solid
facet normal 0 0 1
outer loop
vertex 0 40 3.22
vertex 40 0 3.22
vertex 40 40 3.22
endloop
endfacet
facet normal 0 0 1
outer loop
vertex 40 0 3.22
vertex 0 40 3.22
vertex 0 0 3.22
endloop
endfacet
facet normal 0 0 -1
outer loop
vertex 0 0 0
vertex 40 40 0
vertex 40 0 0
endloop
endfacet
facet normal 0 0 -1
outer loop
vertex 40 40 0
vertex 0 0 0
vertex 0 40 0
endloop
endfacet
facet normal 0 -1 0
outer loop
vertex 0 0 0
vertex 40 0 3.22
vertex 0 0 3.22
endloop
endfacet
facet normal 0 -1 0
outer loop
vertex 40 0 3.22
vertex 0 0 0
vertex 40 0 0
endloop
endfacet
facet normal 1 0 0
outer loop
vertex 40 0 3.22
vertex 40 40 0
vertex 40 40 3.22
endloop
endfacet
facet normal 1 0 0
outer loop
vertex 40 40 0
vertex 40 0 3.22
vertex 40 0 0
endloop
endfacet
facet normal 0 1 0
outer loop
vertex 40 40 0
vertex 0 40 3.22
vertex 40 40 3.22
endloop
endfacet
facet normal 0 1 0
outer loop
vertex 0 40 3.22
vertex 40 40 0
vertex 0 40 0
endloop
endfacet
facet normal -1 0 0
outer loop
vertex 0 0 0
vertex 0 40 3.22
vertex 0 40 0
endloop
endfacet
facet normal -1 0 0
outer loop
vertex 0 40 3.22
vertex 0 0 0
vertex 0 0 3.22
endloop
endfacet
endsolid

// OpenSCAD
/* Warning, this is a very basic generator with a lot of approximation 
input data : [BBGA, BPC, 40x40x3.22mm, 1517, , A, C04-25190A]
generated by com.zoubworld.electronics.cad.model3d.Basic
Date : Sun Feb 15 10:50:49 CET 2026
*/

//body
color("black")
translate([0,0,0])
cube([40.0,40.0,3.22], center=false);
